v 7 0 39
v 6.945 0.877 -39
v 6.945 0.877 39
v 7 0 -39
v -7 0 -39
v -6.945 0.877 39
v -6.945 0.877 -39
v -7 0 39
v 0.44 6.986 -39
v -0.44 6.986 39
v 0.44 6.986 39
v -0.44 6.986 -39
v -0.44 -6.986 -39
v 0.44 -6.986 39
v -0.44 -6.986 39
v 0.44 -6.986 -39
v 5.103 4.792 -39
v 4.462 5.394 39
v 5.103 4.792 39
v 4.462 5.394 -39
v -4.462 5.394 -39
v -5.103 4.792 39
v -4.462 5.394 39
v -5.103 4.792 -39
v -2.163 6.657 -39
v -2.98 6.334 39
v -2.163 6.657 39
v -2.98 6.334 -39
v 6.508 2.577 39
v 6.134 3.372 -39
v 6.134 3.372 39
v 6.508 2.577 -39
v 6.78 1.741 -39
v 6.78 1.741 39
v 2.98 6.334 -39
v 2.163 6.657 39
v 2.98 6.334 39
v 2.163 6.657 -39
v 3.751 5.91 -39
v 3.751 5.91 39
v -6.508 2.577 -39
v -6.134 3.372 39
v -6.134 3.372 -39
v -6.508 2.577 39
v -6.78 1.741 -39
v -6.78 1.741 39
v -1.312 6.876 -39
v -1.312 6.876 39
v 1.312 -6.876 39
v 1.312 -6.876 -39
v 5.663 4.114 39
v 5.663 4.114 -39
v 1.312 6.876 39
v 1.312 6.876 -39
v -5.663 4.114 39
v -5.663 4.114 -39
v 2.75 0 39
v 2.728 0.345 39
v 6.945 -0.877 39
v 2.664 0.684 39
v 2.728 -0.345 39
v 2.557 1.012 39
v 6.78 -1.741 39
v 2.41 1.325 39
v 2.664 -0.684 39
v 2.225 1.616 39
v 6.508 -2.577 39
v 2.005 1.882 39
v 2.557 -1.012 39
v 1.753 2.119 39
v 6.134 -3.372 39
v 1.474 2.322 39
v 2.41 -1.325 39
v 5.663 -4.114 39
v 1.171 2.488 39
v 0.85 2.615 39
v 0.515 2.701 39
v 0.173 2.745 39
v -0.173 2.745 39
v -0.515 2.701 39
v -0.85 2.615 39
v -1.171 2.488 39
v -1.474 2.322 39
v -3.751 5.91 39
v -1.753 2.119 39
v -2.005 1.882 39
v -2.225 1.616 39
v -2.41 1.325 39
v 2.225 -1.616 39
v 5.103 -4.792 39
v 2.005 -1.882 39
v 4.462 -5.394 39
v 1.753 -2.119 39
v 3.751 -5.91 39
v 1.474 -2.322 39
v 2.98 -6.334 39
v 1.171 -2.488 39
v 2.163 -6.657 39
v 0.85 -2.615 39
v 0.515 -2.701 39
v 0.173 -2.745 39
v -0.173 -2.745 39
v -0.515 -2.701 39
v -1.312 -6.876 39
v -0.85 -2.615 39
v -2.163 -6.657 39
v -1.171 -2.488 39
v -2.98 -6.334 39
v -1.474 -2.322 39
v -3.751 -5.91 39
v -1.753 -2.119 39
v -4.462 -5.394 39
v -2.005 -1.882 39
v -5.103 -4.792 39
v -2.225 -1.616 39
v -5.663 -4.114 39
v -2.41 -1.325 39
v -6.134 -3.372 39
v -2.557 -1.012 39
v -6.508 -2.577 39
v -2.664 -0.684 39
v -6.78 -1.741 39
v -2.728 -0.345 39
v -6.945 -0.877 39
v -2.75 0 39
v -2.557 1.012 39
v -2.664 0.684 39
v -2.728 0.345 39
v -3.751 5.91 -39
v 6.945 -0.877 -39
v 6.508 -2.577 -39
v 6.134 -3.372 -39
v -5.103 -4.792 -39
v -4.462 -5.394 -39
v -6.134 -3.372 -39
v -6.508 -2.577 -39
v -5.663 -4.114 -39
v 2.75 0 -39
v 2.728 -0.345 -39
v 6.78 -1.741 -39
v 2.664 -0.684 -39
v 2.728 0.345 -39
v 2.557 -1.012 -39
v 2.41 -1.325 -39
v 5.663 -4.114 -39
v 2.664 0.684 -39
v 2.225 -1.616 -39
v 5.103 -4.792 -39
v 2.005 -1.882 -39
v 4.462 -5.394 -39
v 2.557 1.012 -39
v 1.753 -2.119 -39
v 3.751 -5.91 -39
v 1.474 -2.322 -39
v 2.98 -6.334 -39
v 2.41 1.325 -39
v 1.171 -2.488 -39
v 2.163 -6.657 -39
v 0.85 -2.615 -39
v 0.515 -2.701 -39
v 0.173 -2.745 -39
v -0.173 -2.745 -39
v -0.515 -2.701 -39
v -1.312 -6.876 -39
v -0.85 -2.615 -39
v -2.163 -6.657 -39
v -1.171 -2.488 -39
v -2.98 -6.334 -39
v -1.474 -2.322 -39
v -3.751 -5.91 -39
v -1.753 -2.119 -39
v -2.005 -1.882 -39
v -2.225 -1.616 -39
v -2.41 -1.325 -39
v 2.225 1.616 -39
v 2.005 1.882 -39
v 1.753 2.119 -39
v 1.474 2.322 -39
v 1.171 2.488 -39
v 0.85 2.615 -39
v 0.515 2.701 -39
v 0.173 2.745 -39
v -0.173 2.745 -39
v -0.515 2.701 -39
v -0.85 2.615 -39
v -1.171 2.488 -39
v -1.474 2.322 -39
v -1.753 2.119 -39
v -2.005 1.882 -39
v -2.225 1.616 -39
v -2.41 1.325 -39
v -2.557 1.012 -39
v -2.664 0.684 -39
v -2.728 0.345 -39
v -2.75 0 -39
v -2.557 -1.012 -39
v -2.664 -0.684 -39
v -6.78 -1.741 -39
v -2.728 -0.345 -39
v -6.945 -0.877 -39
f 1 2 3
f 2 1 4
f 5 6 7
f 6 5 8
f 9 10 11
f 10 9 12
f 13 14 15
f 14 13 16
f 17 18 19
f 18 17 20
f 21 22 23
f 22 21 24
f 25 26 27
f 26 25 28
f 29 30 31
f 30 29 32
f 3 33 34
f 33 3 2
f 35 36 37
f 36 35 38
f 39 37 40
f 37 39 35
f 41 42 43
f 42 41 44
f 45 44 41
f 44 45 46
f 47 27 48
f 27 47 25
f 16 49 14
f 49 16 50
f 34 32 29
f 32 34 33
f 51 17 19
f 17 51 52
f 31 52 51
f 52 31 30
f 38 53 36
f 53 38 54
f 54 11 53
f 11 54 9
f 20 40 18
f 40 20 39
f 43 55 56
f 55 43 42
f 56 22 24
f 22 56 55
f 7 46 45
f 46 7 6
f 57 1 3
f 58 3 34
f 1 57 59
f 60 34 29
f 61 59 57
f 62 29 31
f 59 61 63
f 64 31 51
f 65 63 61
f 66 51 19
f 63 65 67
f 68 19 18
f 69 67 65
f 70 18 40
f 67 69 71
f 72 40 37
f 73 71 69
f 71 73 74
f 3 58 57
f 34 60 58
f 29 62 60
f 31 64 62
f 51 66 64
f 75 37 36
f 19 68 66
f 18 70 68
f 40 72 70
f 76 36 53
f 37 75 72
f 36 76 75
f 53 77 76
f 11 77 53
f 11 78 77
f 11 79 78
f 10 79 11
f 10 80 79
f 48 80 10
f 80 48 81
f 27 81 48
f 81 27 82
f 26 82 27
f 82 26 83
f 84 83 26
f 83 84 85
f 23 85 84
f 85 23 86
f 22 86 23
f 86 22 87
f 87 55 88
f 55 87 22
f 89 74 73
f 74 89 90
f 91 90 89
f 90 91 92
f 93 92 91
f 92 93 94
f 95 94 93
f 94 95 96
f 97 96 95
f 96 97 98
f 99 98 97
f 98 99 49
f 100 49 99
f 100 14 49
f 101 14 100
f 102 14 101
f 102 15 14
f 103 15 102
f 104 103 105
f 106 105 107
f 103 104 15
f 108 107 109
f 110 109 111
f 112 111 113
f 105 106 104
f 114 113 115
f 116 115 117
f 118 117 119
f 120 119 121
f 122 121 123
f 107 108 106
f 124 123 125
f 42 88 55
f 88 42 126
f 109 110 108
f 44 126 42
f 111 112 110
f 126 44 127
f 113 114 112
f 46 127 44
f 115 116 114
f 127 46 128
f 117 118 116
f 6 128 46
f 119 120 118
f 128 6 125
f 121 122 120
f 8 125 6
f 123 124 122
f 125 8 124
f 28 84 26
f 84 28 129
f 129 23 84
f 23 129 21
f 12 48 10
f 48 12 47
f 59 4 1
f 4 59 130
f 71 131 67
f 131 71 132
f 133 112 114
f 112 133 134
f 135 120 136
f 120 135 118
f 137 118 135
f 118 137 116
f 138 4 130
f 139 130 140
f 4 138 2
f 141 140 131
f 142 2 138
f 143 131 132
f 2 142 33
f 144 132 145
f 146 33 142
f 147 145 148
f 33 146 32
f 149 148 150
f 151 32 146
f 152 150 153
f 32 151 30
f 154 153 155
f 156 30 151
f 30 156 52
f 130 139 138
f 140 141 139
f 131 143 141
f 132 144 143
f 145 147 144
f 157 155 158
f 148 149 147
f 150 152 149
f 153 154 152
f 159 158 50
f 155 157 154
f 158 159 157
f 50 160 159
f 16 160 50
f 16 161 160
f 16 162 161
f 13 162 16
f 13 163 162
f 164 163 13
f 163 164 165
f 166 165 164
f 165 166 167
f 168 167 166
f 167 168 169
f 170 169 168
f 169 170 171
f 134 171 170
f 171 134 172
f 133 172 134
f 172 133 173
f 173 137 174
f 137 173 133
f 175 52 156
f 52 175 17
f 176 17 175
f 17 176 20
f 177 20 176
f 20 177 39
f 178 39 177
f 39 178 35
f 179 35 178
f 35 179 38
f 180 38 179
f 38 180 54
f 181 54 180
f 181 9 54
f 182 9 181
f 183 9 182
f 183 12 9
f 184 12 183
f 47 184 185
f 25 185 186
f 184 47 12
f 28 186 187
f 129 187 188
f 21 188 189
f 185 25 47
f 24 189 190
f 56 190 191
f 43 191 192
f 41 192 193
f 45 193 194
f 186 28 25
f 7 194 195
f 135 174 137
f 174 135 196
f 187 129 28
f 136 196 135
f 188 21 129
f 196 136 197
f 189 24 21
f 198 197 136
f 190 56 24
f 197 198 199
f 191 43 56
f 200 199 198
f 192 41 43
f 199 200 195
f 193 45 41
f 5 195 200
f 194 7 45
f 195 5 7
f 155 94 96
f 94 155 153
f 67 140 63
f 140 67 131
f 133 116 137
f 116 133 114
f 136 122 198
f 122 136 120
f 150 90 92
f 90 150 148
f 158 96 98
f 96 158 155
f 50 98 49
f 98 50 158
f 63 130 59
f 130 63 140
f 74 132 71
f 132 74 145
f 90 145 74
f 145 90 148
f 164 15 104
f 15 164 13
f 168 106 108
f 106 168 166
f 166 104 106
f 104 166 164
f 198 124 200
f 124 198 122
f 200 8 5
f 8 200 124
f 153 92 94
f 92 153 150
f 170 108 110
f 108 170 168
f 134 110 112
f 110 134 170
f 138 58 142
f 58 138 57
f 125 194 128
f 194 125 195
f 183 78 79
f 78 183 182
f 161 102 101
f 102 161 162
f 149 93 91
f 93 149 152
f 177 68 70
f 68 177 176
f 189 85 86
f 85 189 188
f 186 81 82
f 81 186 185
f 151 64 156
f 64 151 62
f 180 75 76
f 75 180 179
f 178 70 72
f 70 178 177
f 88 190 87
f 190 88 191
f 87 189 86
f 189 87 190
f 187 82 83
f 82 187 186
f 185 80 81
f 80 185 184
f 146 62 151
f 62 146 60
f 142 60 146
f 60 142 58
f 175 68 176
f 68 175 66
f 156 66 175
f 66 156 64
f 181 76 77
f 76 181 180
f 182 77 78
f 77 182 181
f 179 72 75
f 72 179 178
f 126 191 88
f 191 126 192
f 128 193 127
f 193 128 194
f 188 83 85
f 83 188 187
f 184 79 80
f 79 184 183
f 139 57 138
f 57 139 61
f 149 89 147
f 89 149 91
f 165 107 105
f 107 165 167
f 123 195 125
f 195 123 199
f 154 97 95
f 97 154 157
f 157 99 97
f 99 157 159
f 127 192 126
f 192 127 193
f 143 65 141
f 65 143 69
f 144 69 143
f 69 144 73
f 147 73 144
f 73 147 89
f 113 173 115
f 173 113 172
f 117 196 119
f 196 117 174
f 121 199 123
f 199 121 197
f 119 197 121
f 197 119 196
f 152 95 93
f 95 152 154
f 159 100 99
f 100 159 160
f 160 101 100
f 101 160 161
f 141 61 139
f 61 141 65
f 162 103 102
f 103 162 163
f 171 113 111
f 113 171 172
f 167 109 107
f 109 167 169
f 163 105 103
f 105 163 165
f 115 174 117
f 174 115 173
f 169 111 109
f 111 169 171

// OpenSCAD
$fn = 50;


difference() {
	union() {
		translate(v = [0, 0, -39.0000000000]) {
			cylinder(h = 78, r = 7.0000000000);
		}
	}
	union() {
		translate(v = [0, 0, -100.0000000000]) {
			cylinder(h = 200, r = 2.7500000000);
		}
	}
}
